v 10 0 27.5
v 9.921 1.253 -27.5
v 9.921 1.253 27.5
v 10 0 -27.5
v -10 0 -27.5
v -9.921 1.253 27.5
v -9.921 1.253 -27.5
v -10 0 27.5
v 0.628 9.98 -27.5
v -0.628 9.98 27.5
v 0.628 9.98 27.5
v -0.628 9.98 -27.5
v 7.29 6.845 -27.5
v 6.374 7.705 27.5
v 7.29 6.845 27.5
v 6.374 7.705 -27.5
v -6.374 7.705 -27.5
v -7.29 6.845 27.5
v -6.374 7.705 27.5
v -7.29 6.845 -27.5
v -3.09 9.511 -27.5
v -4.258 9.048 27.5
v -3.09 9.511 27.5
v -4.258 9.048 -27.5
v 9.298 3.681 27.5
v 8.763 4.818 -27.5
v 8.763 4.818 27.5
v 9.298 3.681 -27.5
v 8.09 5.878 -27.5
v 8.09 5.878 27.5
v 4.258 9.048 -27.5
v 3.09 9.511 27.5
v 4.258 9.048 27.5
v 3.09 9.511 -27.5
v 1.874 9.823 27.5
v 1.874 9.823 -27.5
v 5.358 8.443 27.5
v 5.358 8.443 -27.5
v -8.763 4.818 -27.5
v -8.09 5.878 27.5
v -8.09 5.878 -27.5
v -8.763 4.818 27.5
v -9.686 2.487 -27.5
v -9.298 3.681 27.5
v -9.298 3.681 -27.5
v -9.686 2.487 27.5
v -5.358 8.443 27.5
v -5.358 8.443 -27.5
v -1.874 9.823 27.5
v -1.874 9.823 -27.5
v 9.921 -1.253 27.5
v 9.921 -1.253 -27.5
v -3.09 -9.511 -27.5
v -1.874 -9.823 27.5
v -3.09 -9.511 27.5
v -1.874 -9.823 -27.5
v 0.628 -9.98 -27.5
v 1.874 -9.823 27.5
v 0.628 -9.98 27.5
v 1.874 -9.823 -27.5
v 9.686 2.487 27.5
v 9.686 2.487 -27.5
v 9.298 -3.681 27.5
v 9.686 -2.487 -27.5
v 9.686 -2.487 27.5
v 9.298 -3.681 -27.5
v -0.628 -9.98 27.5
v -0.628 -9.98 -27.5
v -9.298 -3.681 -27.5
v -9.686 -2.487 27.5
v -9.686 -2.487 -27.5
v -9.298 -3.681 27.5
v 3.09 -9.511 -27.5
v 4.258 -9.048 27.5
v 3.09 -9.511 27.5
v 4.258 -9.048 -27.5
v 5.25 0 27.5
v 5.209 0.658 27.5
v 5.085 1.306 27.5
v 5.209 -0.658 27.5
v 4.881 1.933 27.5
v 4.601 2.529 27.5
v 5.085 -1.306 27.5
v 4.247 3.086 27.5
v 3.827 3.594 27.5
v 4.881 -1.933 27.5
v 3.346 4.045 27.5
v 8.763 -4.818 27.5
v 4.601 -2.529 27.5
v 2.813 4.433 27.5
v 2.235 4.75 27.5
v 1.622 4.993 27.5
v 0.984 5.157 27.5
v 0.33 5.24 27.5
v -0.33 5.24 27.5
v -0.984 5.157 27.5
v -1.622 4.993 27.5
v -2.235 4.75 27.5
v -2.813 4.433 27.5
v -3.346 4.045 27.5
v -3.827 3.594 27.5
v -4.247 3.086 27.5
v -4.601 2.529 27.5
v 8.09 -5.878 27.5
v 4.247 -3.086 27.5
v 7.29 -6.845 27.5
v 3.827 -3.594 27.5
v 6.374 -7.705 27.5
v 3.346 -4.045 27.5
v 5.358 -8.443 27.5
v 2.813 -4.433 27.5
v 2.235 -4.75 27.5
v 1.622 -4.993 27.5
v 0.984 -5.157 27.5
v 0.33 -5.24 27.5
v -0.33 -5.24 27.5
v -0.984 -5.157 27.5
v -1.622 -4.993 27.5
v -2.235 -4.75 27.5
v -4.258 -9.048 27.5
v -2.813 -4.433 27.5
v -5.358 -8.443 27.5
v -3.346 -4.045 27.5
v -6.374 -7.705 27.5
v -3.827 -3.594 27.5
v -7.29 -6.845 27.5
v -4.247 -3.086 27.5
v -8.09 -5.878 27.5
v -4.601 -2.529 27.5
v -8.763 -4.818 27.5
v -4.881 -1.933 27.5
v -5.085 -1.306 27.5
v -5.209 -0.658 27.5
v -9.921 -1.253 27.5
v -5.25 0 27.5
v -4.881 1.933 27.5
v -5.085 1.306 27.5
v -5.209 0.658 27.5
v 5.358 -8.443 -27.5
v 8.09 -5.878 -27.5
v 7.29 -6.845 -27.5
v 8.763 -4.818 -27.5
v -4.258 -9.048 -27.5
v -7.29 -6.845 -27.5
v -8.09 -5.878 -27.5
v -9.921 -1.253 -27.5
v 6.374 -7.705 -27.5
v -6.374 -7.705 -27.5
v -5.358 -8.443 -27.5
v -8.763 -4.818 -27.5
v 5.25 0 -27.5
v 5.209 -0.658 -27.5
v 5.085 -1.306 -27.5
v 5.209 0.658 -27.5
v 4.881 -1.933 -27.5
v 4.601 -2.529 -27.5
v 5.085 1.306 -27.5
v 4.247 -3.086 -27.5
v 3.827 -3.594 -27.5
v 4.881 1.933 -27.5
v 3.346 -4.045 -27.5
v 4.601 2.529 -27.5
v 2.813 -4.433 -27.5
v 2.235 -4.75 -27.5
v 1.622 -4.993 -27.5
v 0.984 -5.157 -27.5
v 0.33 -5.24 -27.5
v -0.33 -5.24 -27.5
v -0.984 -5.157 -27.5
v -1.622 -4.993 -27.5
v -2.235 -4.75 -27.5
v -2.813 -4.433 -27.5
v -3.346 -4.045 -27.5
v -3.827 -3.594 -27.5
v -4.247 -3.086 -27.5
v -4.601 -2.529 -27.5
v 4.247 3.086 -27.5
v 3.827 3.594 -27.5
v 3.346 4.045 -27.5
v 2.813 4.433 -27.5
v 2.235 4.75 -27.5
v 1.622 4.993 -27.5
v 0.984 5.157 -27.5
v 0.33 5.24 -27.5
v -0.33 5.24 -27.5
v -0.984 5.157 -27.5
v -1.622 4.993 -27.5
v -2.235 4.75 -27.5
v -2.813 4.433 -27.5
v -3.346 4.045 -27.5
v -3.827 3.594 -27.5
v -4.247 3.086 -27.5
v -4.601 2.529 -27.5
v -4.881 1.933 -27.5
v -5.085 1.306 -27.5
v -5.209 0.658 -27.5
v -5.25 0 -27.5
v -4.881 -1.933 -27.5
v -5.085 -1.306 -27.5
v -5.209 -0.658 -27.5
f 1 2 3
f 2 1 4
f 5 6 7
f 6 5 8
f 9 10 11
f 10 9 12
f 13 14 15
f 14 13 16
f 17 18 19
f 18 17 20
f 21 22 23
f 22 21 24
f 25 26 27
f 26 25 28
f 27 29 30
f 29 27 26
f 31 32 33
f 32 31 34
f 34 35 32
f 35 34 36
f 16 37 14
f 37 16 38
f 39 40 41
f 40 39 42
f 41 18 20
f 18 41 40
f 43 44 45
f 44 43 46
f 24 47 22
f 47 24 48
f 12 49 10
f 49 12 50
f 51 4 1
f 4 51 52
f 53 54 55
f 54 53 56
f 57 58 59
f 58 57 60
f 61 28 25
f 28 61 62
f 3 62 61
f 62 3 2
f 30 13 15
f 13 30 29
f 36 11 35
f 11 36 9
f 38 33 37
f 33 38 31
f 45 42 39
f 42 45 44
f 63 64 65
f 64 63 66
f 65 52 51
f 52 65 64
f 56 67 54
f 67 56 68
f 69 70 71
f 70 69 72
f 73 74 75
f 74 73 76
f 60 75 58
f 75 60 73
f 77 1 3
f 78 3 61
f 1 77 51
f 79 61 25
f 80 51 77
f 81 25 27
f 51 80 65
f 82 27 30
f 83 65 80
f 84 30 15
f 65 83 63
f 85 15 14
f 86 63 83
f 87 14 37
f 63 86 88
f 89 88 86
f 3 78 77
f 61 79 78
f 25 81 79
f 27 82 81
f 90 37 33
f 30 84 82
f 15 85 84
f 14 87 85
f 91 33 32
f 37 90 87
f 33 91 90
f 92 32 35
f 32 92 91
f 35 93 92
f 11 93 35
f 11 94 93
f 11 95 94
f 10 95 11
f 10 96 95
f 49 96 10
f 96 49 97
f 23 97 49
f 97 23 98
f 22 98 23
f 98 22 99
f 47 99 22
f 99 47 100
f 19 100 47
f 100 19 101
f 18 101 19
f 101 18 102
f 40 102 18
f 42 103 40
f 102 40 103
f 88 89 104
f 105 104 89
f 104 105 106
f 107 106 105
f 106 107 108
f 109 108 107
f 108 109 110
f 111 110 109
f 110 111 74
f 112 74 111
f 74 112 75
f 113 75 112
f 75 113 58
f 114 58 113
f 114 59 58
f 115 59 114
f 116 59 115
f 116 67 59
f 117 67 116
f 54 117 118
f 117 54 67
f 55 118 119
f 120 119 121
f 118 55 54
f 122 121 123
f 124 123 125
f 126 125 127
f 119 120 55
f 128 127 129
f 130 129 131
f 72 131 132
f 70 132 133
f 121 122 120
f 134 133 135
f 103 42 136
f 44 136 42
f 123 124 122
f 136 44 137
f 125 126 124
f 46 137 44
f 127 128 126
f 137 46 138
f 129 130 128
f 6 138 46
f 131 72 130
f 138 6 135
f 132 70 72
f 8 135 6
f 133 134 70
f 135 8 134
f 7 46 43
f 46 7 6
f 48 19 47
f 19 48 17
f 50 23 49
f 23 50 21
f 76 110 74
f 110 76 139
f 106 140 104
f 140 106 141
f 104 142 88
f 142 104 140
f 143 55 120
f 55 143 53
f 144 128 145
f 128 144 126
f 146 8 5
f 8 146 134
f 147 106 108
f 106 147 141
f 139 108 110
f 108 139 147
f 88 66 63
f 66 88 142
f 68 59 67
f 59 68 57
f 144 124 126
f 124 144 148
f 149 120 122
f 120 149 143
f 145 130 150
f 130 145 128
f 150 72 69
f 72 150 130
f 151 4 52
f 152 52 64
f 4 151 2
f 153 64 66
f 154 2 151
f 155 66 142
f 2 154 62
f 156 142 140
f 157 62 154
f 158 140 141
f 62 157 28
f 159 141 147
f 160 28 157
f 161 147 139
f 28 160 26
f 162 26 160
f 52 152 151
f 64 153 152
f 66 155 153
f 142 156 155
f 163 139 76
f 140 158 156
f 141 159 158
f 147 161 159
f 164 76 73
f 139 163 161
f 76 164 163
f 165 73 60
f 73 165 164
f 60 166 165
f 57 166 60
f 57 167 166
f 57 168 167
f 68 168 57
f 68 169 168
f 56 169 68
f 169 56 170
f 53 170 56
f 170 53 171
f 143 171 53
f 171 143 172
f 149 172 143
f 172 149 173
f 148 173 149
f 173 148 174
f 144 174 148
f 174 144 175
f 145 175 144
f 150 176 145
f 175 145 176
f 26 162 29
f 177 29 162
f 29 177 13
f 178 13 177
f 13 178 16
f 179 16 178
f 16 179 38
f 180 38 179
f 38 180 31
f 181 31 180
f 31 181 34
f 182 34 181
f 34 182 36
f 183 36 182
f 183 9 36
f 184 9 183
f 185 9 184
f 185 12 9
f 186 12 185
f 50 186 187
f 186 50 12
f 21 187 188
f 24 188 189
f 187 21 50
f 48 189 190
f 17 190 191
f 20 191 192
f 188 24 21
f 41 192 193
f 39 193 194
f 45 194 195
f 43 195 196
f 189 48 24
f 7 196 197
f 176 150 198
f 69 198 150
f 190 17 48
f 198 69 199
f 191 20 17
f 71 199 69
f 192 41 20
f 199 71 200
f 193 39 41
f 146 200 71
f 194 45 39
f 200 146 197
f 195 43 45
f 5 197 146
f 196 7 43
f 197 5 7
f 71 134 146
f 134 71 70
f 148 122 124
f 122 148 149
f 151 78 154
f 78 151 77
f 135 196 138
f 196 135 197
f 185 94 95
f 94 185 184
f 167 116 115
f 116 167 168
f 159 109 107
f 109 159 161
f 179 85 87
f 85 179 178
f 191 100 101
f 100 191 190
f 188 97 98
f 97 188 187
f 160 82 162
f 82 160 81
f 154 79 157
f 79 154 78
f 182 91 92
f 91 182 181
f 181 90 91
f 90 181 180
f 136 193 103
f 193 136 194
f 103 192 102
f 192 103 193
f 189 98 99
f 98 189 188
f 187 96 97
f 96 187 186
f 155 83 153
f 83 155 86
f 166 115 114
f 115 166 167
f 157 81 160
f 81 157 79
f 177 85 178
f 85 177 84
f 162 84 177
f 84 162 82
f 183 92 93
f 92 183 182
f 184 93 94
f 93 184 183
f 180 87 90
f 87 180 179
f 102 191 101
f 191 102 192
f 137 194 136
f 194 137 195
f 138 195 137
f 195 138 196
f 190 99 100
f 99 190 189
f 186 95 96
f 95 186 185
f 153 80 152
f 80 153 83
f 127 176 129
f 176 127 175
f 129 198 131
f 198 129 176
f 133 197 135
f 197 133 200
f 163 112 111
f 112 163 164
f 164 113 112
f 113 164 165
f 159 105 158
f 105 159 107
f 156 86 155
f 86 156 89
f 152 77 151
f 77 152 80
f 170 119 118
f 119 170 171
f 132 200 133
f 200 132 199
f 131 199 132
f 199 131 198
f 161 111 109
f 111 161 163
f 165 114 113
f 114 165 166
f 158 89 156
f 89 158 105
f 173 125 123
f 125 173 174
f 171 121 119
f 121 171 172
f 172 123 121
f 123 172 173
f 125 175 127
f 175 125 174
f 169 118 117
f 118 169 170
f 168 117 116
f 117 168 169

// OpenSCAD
$fn = 50;


difference() {
	union() {
		translate(v = [0, 0, -27.5000000000]) {
			cylinder(h = 55, r = 10.0000000000);
		}
	}
	union() {
		translate(v = [0, 0, -100.0000000000]) {
			cylinder(h = 200, r = 5.2500000000);
		}
	}
}
